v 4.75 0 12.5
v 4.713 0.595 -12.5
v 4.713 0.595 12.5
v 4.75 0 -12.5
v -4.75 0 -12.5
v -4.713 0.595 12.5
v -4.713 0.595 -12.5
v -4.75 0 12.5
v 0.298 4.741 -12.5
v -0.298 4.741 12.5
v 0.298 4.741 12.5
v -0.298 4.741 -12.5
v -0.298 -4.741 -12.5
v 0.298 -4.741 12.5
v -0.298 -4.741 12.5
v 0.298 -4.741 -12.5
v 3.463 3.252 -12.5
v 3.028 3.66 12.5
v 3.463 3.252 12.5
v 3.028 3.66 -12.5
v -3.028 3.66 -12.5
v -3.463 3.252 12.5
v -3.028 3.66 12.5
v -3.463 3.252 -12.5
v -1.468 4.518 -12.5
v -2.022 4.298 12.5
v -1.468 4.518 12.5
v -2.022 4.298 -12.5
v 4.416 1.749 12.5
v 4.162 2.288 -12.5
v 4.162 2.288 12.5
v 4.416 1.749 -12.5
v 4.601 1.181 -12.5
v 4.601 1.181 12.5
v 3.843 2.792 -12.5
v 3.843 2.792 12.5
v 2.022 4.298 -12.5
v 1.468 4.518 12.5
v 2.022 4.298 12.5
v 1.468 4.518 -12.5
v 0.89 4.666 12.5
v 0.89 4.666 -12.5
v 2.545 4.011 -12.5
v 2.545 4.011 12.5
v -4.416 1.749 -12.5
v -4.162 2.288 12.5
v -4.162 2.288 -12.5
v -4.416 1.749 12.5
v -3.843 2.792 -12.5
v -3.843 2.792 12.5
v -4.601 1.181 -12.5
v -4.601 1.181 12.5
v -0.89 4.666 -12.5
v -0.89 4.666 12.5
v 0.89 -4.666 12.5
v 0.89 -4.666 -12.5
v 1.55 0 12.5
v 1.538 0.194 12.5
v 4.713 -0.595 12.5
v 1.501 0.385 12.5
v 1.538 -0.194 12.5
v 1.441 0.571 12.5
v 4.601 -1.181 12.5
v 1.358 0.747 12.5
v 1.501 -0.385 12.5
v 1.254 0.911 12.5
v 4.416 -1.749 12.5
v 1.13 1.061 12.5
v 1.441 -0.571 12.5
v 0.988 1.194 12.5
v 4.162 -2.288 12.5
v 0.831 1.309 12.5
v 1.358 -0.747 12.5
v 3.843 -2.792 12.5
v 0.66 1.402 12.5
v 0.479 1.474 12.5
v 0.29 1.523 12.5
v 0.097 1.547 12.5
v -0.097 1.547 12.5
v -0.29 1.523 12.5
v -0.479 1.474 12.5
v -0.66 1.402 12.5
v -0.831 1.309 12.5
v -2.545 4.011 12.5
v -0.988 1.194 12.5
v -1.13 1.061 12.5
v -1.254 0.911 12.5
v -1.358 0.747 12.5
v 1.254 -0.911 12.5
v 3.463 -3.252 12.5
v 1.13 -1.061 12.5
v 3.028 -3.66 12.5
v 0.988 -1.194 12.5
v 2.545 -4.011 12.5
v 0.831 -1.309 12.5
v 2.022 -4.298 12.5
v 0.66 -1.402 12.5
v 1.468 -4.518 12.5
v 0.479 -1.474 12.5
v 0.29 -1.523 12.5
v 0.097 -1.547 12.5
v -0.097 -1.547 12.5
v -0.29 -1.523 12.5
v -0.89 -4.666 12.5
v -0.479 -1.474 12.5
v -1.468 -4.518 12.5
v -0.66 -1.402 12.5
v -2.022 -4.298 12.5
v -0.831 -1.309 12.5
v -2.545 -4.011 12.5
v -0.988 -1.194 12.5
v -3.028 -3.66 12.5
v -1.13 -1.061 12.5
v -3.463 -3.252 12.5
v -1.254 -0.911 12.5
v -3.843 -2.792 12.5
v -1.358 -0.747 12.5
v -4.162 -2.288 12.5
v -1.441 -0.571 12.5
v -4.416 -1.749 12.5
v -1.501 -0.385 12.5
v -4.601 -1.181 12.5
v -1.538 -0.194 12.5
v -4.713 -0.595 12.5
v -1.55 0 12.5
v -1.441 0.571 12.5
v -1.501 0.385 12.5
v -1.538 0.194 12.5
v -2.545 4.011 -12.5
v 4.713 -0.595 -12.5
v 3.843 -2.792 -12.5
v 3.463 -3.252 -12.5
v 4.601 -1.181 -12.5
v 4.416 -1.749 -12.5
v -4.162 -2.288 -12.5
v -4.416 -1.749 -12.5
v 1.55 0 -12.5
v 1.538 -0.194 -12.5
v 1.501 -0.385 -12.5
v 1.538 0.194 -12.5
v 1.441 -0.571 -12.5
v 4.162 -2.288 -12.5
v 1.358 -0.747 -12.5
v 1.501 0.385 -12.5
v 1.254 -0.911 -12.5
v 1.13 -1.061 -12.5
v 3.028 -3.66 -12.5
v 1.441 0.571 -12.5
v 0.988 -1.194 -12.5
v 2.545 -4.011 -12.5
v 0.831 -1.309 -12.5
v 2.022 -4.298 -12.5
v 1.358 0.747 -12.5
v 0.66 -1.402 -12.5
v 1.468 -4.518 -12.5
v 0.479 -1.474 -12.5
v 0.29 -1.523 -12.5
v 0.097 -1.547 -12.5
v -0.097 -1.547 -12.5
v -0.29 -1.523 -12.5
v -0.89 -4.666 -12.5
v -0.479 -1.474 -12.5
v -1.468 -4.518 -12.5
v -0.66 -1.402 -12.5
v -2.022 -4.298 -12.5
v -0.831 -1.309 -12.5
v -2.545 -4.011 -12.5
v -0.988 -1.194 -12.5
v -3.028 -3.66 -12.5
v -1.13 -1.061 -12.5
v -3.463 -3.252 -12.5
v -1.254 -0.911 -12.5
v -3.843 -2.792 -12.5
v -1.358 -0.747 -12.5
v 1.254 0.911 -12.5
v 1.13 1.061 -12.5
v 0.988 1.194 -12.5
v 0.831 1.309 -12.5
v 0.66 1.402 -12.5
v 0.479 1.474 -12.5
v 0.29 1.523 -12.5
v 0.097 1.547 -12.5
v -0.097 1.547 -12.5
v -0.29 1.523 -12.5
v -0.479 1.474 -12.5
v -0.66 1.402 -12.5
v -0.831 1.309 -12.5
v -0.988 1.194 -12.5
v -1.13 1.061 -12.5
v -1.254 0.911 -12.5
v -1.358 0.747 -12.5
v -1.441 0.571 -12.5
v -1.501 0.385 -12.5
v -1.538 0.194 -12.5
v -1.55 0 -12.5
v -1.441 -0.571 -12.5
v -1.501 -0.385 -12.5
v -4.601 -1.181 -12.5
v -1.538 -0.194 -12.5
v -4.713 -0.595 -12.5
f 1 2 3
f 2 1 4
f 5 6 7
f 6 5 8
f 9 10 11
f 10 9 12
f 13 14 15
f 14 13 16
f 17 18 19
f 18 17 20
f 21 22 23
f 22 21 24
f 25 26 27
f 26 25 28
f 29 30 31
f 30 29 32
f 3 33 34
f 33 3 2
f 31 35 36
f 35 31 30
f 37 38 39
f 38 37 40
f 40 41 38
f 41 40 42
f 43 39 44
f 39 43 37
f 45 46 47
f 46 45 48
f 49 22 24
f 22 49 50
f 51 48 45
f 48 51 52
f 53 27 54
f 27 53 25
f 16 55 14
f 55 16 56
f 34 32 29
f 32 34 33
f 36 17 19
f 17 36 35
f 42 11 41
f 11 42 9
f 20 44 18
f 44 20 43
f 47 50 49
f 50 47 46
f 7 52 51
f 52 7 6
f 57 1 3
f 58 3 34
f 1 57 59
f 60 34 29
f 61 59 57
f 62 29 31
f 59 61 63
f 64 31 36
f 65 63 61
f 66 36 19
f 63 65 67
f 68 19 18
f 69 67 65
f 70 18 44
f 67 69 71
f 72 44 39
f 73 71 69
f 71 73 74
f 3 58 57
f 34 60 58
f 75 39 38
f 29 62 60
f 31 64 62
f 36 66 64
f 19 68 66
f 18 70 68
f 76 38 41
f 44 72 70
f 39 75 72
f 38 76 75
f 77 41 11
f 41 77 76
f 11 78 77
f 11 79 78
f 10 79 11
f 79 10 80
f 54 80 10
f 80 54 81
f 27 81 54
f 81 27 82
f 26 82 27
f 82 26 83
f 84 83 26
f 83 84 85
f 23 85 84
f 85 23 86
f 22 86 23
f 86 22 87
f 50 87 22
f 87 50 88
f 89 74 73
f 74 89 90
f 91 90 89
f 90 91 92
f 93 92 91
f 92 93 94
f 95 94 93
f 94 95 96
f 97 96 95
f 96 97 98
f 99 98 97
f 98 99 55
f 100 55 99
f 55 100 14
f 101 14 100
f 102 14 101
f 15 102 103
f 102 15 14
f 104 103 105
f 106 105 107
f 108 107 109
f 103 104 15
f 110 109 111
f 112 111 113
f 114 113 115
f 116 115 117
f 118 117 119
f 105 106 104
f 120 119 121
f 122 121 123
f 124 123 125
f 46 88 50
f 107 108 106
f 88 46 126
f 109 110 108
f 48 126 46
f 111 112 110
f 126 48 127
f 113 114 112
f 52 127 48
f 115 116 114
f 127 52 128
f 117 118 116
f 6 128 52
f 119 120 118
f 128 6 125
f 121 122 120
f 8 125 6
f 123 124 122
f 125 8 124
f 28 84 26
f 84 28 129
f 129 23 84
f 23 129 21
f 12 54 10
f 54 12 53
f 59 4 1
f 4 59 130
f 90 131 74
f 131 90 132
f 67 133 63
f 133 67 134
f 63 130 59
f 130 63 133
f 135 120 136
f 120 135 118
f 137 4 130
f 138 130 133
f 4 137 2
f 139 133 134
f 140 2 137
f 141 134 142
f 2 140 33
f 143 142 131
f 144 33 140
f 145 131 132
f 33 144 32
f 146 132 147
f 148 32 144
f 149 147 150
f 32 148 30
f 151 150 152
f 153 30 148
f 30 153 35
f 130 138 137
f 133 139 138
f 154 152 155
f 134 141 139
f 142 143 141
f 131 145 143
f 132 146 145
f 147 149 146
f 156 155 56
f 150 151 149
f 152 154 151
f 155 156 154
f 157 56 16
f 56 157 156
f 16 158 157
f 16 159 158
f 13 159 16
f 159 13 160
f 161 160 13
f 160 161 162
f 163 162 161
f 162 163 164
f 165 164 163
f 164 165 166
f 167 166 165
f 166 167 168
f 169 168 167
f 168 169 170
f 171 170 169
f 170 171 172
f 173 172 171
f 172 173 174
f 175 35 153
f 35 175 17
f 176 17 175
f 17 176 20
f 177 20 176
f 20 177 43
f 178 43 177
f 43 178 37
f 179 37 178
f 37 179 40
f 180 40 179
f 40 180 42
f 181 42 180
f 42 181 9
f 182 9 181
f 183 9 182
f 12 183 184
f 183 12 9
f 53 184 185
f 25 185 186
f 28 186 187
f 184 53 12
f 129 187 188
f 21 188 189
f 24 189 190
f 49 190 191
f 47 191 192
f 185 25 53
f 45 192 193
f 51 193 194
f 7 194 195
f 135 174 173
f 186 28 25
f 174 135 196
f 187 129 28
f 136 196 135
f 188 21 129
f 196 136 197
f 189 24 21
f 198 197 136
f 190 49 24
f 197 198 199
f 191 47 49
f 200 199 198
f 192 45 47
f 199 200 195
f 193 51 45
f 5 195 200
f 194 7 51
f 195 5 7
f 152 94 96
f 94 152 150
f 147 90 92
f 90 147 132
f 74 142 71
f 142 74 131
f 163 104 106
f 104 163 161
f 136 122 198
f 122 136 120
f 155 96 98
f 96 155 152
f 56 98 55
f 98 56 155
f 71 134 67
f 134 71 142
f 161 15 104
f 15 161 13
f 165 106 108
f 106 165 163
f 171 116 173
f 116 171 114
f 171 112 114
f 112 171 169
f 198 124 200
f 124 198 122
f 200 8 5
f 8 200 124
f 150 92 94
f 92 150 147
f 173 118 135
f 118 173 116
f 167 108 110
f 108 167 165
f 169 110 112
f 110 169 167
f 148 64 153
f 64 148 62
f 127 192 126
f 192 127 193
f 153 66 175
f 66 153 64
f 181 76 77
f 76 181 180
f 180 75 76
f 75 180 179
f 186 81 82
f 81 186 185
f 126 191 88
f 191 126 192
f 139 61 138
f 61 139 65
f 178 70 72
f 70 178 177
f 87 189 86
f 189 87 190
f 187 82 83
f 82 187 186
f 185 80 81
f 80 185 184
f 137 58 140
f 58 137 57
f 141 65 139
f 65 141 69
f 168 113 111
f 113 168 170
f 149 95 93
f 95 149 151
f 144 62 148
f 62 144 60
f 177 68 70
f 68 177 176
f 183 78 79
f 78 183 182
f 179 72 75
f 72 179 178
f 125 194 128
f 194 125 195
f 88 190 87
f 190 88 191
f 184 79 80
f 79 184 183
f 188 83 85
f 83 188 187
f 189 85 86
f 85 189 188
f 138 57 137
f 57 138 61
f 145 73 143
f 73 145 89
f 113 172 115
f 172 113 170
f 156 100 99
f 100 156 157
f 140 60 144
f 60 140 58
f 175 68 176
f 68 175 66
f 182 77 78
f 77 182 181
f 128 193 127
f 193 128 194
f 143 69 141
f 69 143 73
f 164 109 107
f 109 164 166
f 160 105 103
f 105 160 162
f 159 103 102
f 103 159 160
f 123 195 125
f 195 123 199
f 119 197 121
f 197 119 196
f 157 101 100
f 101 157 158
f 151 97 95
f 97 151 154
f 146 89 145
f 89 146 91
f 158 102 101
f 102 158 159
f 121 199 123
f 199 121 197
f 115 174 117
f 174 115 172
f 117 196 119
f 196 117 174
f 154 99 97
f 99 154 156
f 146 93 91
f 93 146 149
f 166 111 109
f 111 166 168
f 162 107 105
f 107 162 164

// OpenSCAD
$fn = 50;


difference() {
	union() {
		translate(v = [0, 0, -12.5000000000]) {
			cylinder(h = 25, r = 4.7500000000);
		}
	}
	union() {
		translate(v = [0, 0, -100.0000000000]) {
			cylinder(h = 200, r = 1.5500000000);
		}
	}
}
